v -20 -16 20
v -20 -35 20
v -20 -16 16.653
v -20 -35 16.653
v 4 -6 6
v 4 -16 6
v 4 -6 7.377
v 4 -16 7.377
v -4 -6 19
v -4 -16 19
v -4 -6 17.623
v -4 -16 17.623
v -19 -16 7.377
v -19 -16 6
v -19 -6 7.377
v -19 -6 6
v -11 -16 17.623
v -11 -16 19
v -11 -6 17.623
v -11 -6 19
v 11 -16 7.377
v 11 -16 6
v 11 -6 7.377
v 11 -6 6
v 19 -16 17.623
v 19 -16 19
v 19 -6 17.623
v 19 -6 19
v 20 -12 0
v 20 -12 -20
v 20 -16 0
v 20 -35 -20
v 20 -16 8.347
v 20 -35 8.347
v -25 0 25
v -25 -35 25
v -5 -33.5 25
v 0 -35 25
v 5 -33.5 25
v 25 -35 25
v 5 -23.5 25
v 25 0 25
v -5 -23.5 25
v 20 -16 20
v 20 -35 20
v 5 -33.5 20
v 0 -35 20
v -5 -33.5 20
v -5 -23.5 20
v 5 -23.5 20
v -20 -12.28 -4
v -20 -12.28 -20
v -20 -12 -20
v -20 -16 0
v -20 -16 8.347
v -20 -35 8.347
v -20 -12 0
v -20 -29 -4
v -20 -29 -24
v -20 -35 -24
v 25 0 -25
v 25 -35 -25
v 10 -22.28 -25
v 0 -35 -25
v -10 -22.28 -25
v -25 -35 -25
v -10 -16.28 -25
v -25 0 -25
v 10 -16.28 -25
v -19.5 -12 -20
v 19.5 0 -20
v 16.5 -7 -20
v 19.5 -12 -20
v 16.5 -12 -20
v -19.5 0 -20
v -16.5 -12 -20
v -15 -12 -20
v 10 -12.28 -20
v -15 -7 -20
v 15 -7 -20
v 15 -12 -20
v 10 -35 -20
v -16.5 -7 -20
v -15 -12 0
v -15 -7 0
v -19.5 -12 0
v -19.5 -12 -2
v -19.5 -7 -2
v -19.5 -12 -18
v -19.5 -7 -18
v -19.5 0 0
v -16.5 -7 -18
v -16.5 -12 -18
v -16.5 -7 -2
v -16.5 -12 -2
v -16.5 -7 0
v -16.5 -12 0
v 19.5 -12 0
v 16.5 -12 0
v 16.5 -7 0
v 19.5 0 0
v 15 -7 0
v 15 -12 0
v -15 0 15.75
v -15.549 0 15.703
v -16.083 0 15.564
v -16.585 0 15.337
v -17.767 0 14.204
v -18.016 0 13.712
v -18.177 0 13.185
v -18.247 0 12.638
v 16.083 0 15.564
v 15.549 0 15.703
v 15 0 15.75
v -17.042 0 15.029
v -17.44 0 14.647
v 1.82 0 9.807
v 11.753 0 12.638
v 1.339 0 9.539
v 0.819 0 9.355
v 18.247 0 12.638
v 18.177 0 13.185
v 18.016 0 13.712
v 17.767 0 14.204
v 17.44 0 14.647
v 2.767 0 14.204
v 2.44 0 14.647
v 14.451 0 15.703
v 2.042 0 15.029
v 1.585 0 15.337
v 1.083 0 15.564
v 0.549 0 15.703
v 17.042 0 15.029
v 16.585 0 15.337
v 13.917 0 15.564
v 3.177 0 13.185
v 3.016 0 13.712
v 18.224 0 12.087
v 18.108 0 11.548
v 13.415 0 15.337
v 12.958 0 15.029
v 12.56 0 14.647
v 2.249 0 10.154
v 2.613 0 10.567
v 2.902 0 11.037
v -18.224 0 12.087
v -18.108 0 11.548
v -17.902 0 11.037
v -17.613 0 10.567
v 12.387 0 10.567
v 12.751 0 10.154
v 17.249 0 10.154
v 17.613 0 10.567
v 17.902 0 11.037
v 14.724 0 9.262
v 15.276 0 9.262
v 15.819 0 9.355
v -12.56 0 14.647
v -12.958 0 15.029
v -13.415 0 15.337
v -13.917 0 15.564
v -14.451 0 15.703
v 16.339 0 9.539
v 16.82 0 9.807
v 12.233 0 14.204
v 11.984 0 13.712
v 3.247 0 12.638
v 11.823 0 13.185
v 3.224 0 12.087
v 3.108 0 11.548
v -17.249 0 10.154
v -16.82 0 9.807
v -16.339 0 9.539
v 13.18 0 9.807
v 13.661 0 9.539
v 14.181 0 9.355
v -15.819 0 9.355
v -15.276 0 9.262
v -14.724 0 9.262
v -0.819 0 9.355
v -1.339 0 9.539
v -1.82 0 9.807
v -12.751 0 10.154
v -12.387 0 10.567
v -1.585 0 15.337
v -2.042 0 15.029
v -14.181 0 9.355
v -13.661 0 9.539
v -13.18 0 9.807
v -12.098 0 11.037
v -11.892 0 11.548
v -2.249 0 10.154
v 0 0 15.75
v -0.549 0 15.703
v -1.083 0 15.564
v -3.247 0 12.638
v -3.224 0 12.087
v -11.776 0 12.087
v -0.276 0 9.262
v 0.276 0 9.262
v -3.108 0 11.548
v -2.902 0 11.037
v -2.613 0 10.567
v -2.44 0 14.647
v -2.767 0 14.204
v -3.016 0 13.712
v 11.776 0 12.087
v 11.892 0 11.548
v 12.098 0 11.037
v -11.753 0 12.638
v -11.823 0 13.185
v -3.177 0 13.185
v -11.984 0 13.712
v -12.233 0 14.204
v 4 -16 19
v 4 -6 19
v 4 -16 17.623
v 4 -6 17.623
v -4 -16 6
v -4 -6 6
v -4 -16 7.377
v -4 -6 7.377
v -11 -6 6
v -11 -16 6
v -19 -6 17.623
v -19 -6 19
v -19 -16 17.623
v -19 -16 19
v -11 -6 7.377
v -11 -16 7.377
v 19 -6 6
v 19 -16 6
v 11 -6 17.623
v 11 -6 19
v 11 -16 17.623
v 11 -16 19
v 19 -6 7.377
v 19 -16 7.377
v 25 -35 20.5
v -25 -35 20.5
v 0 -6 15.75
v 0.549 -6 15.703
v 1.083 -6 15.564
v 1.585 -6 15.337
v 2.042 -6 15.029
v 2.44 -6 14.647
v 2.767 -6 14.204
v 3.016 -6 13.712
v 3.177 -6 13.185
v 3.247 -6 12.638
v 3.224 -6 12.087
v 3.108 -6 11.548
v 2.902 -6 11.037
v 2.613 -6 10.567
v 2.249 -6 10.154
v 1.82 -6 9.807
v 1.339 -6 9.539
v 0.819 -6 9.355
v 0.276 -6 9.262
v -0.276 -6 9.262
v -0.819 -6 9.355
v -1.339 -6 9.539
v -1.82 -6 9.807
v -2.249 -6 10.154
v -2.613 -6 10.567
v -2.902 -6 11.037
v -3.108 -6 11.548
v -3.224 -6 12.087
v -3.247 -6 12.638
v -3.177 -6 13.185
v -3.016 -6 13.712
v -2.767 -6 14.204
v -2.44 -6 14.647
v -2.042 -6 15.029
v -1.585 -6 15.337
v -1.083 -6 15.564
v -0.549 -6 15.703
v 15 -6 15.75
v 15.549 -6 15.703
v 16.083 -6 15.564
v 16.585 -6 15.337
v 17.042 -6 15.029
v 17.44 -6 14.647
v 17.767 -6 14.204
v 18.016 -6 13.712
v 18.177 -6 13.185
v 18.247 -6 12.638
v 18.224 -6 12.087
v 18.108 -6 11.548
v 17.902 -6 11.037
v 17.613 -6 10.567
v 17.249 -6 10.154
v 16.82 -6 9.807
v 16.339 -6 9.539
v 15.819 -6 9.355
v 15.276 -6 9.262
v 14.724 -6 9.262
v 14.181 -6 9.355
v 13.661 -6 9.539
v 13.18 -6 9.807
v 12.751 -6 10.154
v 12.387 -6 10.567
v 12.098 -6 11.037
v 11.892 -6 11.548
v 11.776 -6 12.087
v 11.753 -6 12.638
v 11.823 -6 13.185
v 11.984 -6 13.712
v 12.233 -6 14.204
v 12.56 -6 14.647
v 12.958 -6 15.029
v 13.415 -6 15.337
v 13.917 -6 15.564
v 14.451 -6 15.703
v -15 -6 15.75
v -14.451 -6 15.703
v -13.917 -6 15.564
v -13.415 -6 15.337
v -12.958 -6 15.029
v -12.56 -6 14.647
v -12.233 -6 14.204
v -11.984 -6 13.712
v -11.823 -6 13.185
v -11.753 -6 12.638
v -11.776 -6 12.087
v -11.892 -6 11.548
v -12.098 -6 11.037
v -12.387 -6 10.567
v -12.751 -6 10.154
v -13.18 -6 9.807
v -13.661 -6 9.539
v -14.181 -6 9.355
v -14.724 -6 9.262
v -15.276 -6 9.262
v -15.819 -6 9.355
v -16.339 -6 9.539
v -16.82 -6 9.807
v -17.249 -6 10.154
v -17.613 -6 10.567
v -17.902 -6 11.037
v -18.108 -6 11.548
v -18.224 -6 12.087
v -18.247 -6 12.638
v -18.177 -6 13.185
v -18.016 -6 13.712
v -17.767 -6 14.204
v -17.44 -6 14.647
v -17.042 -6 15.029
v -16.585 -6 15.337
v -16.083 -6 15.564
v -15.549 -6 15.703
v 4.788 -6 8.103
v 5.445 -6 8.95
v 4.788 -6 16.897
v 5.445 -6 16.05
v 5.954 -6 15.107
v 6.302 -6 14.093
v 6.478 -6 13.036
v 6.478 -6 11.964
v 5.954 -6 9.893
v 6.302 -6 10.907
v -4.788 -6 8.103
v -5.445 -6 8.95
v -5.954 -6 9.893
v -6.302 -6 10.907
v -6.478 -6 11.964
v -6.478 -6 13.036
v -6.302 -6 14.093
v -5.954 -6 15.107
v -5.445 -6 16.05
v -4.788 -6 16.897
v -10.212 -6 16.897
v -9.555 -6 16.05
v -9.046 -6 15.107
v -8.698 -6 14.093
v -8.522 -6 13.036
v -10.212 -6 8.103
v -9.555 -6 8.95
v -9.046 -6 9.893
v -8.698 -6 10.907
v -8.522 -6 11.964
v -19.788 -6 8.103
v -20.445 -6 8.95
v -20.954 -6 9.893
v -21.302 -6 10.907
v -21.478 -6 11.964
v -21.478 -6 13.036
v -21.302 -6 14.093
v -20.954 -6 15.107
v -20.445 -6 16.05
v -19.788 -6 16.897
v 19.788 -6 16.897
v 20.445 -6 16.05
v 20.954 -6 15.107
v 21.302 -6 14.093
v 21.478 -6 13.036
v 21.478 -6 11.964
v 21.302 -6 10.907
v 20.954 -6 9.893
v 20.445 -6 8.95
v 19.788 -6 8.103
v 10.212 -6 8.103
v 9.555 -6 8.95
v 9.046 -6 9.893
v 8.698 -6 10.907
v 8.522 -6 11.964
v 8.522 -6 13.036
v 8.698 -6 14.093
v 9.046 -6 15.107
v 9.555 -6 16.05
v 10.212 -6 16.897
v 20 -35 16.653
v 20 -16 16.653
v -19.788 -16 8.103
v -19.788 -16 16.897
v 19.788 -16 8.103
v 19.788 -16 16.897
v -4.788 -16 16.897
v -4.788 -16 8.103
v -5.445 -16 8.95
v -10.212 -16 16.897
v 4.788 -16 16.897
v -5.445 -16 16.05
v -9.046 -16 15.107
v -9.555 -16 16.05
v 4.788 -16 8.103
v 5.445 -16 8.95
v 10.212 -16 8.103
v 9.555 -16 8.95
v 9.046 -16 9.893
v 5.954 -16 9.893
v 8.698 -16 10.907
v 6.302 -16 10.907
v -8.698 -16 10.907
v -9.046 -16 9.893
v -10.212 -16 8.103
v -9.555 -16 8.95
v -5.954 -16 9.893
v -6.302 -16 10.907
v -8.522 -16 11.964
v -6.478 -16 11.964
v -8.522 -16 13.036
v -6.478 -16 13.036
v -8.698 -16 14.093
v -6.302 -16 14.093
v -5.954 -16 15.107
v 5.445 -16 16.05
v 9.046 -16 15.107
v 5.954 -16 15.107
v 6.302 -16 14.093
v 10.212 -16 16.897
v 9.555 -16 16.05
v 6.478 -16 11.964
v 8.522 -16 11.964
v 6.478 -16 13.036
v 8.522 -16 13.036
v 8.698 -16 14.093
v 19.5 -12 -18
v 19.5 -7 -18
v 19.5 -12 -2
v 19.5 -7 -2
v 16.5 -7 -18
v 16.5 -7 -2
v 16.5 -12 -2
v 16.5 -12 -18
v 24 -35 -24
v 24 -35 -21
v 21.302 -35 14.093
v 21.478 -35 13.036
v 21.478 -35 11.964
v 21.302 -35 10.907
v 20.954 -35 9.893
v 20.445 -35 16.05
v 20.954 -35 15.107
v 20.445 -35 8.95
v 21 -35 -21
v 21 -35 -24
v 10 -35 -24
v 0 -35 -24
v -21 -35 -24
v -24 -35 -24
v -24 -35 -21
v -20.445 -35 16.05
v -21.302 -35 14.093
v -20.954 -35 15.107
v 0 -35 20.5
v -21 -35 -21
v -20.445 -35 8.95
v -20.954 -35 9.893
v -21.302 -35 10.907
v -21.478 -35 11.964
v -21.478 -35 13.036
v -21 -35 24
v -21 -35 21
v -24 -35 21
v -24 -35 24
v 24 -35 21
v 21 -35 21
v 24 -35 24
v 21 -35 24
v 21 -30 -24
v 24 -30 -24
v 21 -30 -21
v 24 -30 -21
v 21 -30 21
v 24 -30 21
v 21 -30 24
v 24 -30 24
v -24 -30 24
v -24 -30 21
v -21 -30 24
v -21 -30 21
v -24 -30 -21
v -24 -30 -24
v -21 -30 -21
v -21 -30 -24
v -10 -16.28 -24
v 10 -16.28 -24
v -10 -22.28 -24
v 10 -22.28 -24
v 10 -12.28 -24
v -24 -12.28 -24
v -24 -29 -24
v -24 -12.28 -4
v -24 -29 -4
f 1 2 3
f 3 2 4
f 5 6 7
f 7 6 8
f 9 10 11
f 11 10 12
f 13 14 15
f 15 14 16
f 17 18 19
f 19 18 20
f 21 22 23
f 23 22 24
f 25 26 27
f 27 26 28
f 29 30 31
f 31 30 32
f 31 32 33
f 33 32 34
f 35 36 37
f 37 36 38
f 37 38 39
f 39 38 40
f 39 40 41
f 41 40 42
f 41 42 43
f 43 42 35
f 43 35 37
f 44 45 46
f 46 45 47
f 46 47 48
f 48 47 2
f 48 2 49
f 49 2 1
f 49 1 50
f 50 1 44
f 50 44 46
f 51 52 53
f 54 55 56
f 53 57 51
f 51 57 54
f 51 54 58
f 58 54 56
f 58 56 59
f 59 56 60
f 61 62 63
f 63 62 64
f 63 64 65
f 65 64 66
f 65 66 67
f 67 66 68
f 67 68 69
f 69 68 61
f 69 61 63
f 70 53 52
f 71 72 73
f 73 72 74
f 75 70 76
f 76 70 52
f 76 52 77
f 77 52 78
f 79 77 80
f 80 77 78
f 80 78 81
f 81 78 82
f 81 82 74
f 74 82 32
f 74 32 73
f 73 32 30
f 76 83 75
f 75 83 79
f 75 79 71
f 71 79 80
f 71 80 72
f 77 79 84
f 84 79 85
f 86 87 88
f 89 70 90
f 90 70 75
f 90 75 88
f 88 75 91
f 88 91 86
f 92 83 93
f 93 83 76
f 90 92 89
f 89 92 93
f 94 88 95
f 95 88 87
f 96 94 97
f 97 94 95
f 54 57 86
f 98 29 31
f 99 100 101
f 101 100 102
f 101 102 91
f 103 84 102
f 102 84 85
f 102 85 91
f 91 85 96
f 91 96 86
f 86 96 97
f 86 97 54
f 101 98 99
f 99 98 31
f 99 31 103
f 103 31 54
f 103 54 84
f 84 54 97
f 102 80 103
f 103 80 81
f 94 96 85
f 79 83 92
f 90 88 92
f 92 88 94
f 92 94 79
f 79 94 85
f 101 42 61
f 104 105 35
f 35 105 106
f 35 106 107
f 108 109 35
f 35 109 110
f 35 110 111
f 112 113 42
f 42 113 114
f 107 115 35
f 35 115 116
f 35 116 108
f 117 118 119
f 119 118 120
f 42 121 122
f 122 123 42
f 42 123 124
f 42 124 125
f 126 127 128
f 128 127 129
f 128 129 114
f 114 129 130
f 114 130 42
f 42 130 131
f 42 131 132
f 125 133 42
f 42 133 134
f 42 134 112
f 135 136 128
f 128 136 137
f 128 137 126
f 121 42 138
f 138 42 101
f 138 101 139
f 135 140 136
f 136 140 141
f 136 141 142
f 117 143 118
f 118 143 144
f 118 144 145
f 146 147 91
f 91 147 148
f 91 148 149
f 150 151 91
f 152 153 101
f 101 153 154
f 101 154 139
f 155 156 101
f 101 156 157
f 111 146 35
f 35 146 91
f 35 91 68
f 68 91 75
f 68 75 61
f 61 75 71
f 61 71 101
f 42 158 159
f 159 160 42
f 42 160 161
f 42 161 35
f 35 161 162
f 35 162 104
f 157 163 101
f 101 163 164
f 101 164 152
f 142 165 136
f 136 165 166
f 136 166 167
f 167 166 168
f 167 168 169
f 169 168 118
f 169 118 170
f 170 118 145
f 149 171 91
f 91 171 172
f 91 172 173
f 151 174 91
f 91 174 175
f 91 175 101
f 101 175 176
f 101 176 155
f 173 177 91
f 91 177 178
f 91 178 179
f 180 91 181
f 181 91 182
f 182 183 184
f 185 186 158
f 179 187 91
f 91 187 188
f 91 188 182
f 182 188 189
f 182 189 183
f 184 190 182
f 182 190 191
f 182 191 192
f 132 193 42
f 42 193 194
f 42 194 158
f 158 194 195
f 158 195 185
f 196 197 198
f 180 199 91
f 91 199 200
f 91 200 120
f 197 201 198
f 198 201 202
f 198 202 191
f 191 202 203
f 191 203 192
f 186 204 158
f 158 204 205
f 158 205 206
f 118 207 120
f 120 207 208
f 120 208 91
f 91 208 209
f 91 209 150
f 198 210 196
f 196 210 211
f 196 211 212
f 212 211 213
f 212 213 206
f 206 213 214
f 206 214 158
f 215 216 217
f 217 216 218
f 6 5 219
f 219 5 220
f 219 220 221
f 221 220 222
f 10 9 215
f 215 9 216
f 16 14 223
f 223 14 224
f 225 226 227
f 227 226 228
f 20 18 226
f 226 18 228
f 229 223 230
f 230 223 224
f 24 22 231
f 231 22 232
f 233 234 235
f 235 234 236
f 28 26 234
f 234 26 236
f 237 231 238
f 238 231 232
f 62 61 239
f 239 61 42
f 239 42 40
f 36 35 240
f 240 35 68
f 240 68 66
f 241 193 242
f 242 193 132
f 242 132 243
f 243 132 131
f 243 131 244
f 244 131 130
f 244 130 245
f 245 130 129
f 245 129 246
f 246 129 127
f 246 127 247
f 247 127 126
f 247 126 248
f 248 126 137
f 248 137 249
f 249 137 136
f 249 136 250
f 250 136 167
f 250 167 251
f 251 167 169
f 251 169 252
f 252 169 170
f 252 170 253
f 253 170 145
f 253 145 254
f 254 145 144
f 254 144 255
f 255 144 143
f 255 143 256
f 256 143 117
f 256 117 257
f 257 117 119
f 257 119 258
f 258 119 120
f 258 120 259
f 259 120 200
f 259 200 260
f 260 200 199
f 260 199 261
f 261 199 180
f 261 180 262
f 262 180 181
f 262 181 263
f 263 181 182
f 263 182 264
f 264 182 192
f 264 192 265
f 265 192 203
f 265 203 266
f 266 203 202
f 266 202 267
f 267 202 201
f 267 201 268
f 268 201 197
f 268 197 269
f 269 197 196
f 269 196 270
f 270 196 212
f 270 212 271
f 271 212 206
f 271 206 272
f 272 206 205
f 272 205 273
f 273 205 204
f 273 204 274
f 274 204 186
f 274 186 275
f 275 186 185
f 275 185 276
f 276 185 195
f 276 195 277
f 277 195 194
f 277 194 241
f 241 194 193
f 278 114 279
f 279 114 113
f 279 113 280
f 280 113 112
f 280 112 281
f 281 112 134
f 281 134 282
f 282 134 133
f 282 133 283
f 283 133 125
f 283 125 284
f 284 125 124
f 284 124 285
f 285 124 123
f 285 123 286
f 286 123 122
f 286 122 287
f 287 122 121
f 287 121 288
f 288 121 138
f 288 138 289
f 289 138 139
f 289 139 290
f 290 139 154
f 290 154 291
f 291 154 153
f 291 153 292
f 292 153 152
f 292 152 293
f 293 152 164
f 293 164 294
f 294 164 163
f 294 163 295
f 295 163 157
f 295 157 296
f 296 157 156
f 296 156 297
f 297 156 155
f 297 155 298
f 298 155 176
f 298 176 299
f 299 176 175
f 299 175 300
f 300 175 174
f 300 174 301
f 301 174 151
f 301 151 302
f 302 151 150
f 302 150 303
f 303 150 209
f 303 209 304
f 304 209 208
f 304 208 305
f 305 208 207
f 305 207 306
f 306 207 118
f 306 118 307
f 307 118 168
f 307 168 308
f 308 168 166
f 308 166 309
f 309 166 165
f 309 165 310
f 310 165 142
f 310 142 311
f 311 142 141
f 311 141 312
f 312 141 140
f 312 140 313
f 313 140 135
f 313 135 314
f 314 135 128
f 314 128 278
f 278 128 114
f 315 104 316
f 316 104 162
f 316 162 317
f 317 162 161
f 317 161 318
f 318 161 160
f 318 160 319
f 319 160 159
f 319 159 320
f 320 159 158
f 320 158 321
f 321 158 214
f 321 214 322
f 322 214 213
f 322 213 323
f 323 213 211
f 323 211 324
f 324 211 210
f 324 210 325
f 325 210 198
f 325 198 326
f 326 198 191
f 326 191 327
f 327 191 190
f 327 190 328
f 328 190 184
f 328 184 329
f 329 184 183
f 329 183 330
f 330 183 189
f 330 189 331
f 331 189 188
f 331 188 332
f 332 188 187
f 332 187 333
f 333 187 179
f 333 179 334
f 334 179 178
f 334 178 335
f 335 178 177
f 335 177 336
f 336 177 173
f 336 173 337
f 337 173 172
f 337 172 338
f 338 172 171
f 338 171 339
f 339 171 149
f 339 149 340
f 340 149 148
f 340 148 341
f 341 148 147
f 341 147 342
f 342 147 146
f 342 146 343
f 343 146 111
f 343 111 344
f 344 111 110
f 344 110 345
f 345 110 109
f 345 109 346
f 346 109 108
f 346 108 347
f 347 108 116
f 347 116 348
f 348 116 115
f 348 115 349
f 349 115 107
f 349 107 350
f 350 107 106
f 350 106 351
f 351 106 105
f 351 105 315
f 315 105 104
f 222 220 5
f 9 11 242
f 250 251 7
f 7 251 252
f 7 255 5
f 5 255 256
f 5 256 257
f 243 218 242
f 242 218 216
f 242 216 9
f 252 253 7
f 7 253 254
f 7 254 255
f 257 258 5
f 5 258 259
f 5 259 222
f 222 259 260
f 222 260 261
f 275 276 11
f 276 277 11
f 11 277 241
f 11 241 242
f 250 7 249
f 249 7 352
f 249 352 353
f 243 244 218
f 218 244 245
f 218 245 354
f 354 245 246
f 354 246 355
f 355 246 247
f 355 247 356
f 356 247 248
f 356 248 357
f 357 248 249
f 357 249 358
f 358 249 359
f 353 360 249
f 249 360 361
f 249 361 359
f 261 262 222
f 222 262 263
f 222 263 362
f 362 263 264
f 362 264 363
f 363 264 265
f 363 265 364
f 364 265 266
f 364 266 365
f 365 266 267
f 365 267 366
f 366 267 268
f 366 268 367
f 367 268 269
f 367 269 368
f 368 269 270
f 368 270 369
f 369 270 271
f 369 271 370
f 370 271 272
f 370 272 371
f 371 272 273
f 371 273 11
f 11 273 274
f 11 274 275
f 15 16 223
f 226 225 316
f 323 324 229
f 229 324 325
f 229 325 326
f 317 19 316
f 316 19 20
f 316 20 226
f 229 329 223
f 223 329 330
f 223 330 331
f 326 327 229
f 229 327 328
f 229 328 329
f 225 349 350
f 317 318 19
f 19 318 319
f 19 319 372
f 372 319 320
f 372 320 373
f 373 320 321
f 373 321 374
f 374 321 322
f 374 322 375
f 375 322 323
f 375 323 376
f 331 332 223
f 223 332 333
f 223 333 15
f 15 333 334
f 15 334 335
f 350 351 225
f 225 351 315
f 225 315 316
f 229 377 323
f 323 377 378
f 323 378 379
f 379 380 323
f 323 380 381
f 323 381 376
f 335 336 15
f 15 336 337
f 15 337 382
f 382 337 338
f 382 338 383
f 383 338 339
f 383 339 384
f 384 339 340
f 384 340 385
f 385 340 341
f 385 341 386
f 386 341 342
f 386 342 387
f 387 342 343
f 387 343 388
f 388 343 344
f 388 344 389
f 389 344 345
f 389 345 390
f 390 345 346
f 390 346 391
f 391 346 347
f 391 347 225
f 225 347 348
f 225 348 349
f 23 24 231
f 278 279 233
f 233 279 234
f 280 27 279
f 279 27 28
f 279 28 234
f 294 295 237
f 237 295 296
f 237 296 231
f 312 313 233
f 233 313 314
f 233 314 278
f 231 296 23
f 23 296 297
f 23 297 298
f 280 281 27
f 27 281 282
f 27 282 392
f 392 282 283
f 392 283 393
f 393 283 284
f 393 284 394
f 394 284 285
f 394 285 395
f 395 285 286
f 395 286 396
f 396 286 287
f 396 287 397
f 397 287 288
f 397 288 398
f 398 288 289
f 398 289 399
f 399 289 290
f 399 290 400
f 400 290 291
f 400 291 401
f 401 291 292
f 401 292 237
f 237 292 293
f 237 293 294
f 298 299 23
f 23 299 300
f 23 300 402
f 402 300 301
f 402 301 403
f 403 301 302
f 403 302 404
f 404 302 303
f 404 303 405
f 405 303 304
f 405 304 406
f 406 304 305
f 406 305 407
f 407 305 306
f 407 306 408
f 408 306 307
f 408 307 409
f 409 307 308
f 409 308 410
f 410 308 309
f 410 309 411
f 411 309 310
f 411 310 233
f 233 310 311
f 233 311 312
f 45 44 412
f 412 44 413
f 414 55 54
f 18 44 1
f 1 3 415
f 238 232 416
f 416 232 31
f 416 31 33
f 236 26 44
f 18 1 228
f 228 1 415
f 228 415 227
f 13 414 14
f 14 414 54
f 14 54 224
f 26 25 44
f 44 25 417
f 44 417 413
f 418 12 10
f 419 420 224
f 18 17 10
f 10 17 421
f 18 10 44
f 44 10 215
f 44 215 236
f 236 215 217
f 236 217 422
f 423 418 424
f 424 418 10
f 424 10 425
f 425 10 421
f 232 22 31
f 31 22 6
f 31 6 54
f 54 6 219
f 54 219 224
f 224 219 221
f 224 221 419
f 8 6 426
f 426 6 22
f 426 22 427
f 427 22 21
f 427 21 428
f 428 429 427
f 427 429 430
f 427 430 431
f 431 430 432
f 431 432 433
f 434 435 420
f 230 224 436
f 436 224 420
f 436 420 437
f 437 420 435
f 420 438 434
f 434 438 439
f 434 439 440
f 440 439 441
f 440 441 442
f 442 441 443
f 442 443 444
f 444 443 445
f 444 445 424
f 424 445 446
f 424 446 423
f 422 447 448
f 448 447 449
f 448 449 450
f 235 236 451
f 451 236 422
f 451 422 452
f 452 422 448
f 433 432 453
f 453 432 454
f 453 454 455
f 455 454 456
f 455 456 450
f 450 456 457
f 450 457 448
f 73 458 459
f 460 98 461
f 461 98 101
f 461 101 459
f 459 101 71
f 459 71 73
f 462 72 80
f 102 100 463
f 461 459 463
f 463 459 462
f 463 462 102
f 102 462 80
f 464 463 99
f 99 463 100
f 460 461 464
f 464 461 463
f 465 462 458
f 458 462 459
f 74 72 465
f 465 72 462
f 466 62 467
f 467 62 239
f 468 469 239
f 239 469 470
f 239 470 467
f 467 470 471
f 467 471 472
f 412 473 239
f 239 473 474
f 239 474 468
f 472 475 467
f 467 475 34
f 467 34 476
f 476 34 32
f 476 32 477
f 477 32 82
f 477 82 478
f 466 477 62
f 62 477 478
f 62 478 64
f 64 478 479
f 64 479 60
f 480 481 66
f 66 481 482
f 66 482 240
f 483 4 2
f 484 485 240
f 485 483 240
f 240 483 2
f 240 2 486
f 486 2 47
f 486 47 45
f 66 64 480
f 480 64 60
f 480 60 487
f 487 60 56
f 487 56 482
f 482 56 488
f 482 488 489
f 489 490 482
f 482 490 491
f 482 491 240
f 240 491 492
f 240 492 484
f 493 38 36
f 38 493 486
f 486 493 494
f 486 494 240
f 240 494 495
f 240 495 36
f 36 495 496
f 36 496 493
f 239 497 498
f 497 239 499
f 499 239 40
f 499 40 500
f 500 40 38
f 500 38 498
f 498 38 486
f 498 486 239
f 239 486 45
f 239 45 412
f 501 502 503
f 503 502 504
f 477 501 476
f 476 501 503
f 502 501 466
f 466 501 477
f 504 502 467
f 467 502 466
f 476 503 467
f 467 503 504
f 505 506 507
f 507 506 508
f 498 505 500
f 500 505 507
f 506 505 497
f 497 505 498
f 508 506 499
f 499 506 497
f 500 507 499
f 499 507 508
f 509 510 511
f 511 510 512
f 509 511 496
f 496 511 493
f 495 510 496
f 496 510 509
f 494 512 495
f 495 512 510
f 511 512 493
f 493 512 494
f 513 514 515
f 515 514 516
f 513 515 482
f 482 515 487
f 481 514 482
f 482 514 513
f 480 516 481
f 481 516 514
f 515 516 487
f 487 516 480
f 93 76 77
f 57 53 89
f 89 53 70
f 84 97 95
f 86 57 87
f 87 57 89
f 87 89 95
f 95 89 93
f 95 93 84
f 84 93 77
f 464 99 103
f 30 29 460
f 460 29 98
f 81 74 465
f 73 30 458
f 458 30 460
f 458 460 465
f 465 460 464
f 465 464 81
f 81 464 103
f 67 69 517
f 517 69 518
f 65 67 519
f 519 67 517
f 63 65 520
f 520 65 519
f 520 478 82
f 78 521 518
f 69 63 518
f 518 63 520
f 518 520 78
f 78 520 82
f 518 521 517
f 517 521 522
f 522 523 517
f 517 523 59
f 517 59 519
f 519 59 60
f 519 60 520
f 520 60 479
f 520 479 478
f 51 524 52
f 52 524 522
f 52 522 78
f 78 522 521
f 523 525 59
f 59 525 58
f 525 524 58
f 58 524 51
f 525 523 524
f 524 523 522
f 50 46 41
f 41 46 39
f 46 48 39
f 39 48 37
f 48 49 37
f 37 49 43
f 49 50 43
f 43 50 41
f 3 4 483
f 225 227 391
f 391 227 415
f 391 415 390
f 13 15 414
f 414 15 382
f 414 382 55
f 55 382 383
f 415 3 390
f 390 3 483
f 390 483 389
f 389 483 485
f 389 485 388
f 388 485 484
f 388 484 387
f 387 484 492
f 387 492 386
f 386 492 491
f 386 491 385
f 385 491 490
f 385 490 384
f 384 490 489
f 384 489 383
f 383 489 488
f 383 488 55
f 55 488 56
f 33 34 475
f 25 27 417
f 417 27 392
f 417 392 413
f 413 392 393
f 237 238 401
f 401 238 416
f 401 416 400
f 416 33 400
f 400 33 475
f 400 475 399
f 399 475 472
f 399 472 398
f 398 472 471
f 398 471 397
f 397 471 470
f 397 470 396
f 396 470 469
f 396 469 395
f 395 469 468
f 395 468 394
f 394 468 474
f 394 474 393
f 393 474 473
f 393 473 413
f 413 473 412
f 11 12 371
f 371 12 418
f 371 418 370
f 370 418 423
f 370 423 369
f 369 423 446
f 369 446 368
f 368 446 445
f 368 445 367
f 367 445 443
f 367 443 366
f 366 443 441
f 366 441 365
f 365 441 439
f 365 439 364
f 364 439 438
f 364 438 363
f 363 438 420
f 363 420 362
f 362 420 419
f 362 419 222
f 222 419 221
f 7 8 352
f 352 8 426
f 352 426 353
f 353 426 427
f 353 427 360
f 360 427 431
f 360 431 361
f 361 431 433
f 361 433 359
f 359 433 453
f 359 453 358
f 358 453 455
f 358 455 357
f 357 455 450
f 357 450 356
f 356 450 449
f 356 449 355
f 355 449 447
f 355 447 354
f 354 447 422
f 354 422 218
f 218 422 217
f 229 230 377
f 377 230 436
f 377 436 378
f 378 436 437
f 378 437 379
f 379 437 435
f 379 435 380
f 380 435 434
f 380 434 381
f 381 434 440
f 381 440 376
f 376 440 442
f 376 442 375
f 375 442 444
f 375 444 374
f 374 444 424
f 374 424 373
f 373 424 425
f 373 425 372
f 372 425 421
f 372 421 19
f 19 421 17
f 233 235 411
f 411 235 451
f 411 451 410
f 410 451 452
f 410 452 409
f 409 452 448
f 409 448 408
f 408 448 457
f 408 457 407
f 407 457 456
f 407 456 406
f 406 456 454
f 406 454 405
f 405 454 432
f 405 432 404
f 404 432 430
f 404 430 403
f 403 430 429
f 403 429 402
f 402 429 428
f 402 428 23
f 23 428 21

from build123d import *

# Parameters (mm, degrees)
BOSS_EXTRUDE1_DEPTH = 40
SKETCH4_R           = 3.25
CUT_EXTRUDE1_DEPTH  = 6
SKETCH5_W           = 8
SKETCH5_H           = 13
CUT_EXTRUDE2_DEPTH  = 34
SKETCH6_W           = 8
SKETCH6_H           = 13
CUT_EXTRUDE3_DEPTH  = 24
CUT_EXTRUDE4_DEPTH  = 7
SKETCH8_W           = 30
SKETCH8_H           = 20
CUT_EXTRUDE5_DEPTH  = 33
SKETCH8_3_W         = 5
SKETCH8_3_H         = 20
CUT_EXTRUDE6_DEPTH  = 24
CUT_EXTRUDE7_DEPTH  = 24
SKETCH7_W           = 3
SKETCH7_H           = 2
CUT_EXTRUDE8_DEPTH  = 10
CUT_EXTRUDE9_DEPTH  = 10
SKETCH12_W          = 50
SKETCH12_H          = 50
CUT_EXTRUDE10_DEPTH = 5
SKETCH16_W          = 5
SKETCH16_H          = 20
CUT_EXTRUDE11_DEPTH = 4
CUT_EXTRUDE12_DEPTH = 5
CUT_EXTRUDE13_DEPTH = 4
CUT_EXTRUDE14_DEPTH = 4
SKETCH11_W          = 10
SKETCH11_H          = 10
CUT_EXTRUDE15_DEPTH = 5
SKETCH20_R          = 6.5
CUT_EXTRUDE16_DEPTH = 29


with BuildPart() as part:
    # Sketch2 → Boss-Extrude1 (new body)
    with BuildSketch(Plane(origin=(0, 0, 0), x_dir=(1, 0, 0), z_dir=(0, 1, 0))):
        Polygon((0, 25), (-25, 25), (-25, -25), (25, -25), (25, 25), align=None)
    extrude(amount=-BOSS_EXTRUDE1_DEPTH)

    # Sketch4 → Cut-Extrude1 (cut)
    with BuildSketch(Plane(origin=(0, 0, 0), x_dir=(1, 0, 0), z_dir=(0, 1, 0))):
        with Locations((0, -12.5)):
            Circle(SKETCH4_R)
        with Locations((15, -12.5)):
            Circle(SKETCH4_R)
        with Locations((-15, -12.5)):
            Circle(SKETCH4_R)
    extrude(amount=-CUT_EXTRUDE1_DEPTH, mode=Mode.SUBTRACT)

    # Sketch5 → Cut-Extrude2 (cut)
    with BuildSketch(Plane.XZ.offset(40)):
        with Locations((-15, 12.5)):
            Rectangle(SKETCH5_W, SKETCH5_H)
        with Locations((0, 12.5)):
            Rectangle(SKETCH5_W, SKETCH5_H)
        with Locations((15, 12.5)):
            Rectangle(SKETCH5_W, SKETCH5_H)
    extrude(amount=-CUT_EXTRUDE2_DEPTH, mode=Mode.SUBTRACT)

    # Sketch6 → Cut-Extrude3 (cut)
    with BuildSketch(Plane.XZ.offset(40)):
        Polygon((-20, 20), (-20, 3), (0, 3), (20, 3), (20, 20), align=None)
        with Locations((-15, 12.5)):
            Rectangle(SKETCH6_W, SKETCH6_H, mode=Mode.SUBTRACT)
        Polygon((4, 6), (0, 6), (-4, 6), (-4, 19), (4, 19), align=None, mode=Mode.SUBTRACT)
        with Locations((15, 12.5)):
            Rectangle(SKETCH6_W, SKETCH6_H, mode=Mode.SUBTRACT)
    extrude(amount=-CUT_EXTRUDE3_DEPTH, mode=Mode.SUBTRACT)

    # Sketch3 → Cut-Extrude4 (cut)
    with BuildSketch(Plane(origin=(0, 0, 0), x_dir=(1, 0, 0), z_dir=(0, 1, 0))):
        Polygon((19.5, 20), (0, 20), (-19.5, 20), (-19.5, 0), (19.5, 0), align=None)
    extrude(amount=-CUT_EXTRUDE4_DEPTH, mode=Mode.SUBTRACT)

    # Sketch8 → Cut-Extrude5 (cut)
    with BuildSketch(Plane.XZ.offset(40)):
        with Locations((0, -10)):
            Rectangle(SKETCH8_W, SKETCH8_H)
    extrude(amount=-CUT_EXTRUDE5_DEPTH, mode=Mode.SUBTRACT)

    # Sketch8<3> → Cut-Extrude6 (cut)
    with BuildSketch(Plane.XZ.offset(40)):
        with Locations((-17.5, -10)):
            Rectangle(SKETCH8_3_W, SKETCH8_3_H)
        with Locations((17.5, -10)):
            Rectangle(SKETCH8_3_W, SKETCH8_3_H)
    extrude(amount=-CUT_EXTRUDE6_DEPTH, mode=Mode.SUBTRACT)

    # Sketch8<4> → Cut-Extrude7 (cut)
    with BuildSketch(Plane.XZ.offset(40)):
        Polygon((20, 3), (-20, 3), (-20, 0), (-15, 0), (0, 0), (15, 0), (20, 0), align=None)
    extrude(amount=-CUT_EXTRUDE7_DEPTH, mode=Mode.SUBTRACT)

    # Sketch7 → Cut-Extrude8 (cut)
    with BuildSketch(Plane(origin=(0, -7, 0), x_dir=(1, 0, 0), z_dir=(0, 1, 0))):
        with Locations((-18, 19)):
            Rectangle(SKETCH7_W, SKETCH7_H)
        with Locations((-18, 1)):
            Rectangle(SKETCH7_W, SKETCH7_H)
        with Locations((18, 1)):
            Rectangle(SKETCH7_W, SKETCH7_H)
        with Locations((18, 19)):
            Rectangle(SKETCH7_W, SKETCH7_H)
    extrude(amount=-CUT_EXTRUDE8_DEPTH, mode=Mode.SUBTRACT)

    # Sketch9 → Cut-Extrude9 (cut)
    with BuildSketch(Plane.XZ.offset(40)):
        Polygon((-24, 24), (-24, 22.5), (-24, 21), (-21, 21), (-21, 24), align=None)
        Polygon((-21, -24), (-21, -22.5), (-21, -21), (-24, -21), (-24, -24), align=None)
        Polygon((21, -21), (21, -22.5), (21, -24), (24, -24), (24, -21), align=None)
        Polygon((24, 21), (24, 22.5), (24, 24), (21, 24), (21, 21), align=None)
    extrude(amount=-CUT_EXTRUDE9_DEPTH, mode=Mode.SUBTRACT)

    # Sketch12 → Cut-Extrude10 (cut)
    with BuildSketch(Plane.XZ.offset(40)):
        Rectangle(SKETCH12_W, SKETCH12_H)
    extrude(amount=-CUT_EXTRUDE10_DEPTH, mode=Mode.SUBTRACT)

    # Sketch16 → Cut-Extrude11 (cut)
    with BuildSketch(Plane.XZ.offset(16)):
        with Locations((17.5, -10)):
            Rectangle(SKETCH16_W, SKETCH16_H)
        with Locations((-17.5, -10)):
            Rectangle(SKETCH16_W, SKETCH16_H)
    extrude(amount=-CUT_EXTRUDE11_DEPTH, mode=Mode.SUBTRACT)

    # Sketch13 → Cut-Extrude12 (cut)
    with BuildSketch(Plane(origin=(0, 0, -25), x_dir=(-1, 0, 0), z_dir=(0, 0, -1))):
        Polygon((0, -16.279858657), (10, -16.279858657), (10, -22.279858657), (-10, -22.279858657), (-10, -16.279858657), align=None)
    extrude(amount=-CUT_EXTRUDE12_DEPTH, mode=Mode.SUBTRACT)

    # Sketch14 → Cut-Extrude13 (cut)
    with BuildSketch(Plane.XY.offset(-20)):
        Polygon((10, -19.279858657), (10, -12.279858657), (-20, -12.279858657), (-20, -36.279858657), (10, -36.279858657), align=None)
    extrude(amount=-CUT_EXTRUDE13_DEPTH, mode=Mode.SUBTRACT)

    # Sketch18 → Cut-Extrude14 (cut)
    with BuildSketch(Plane(origin=(-20, 0, 0), x_dir=(0, 0, -1), z_dir=(1, 0, 0))):
        Polygon((4, -29), (24, -29), (24, -12.279858657), (20, -12.279858657), (4, -12.279858657), align=None)
    extrude(amount=-CUT_EXTRUDE14_DEPTH, mode=Mode.SUBTRACT)

    # Sketch11 → Cut-Extrude15 (cut)
    with BuildSketch(Plane.XY.offset(25)):
        with Locations((0, -28.5)):
            Rectangle(SKETCH11_W, SKETCH11_H)
    extrude(amount=-CUT_EXTRUDE15_DEPTH, mode=Mode.SUBTRACT)

    # Sketch20 → Cut-Extrude16 (cut)
    with BuildSketch(Plane.XZ.offset(35)):
        with Locations((15, 12.5)):
            Circle(SKETCH20_R)
        with Locations((0, 12.5)):
            Circle(SKETCH20_R)
        with Locations((-15, 12.5)):
            Circle(SKETCH20_R)
    extrude(amount=-CUT_EXTRUDE16_DEPTH, mode=Mode.SUBTRACT)


solid = part.part
